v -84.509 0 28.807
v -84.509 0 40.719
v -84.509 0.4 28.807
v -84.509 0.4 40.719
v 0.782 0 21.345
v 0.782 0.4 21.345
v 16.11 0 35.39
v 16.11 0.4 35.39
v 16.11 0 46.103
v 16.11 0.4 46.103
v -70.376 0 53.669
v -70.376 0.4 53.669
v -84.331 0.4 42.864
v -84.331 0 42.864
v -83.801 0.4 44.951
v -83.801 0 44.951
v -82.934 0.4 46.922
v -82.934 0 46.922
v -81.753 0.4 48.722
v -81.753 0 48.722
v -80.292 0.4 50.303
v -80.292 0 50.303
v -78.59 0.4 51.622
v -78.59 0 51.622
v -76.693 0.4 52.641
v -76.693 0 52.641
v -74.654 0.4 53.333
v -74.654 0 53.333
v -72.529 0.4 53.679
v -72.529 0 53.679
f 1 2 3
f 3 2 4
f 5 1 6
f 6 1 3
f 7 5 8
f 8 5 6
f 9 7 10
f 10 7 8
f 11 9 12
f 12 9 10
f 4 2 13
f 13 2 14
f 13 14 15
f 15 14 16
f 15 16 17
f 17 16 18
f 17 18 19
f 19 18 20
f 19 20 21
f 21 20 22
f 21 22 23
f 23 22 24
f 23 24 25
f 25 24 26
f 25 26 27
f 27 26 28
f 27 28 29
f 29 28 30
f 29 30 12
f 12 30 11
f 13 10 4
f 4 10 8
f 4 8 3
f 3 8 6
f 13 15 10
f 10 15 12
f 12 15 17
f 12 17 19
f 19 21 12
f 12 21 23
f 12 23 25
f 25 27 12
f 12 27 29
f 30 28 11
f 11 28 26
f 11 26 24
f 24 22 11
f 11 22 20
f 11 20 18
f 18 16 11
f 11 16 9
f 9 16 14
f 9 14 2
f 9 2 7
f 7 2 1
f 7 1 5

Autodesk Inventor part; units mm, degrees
ref_plane "YZ Plane" through (0, 0, 0) normal (1, 0, 0) x (0, 1, 0)
ref_plane "XZ Plane" through (0, 0, 0) normal (0, 1, 0) x (-1, 0, 0)
ref_plane "XY Plane" through (0, 0, 0) normal (0, 0, 1) x (1, 0, 0)
sketch "Sketch1" plane through (0, 0, 0) normal (0, 1, 0) x (-1, 0, 0)
  line L0 (-0.7821, 21.3445) -> (84.5093, 28.8066)
  line L1 (84.5093, 28.8066) -> (84.5093, 40.7189)
  arc A0 (84.5093, 40.7189) -> (70.3763, 53.6694) centre (71.5093, 40.7189) ccw
  line L2 (70.3763, 53.6694) -> (-16.1101, 46.1028)
  line L3 (-16.1101, 46.1028) -> (-16.1101, 35.3901)
  line L4 (-16.1101, 35.3901) -> (-0.7821, 21.3445)
  line L5 (82.5093, 40.7189) -> (82.5093, 35.2209)
  arc A1 (77.9451, 30.2399) -> (82.5093, 35.2209) centre (77.5093, 35.2209) ccw
  line L6 (77.9451, 30.2399) -> (2.112, 23.6054)
  arc A2 (-1.7018, 24.8999) -> (2.112, 23.6054) centre (1.6762, 28.5863) ccw
  line L7 (-1.7018, 24.8999) -> (-12.4881, 34.7838)
  arc A3 (-14.1101, 38.4702) -> (-12.4881, 34.7838) centre (-9.1101, 38.4702) ccw
  line L8 (-14.1101, 38.4702) -> (-14.1101, 39.6885)
  arc A4 (-9.5459, 44.6695) -> (-14.1101, 39.6885) centre (-9.1101, 39.6885) ccw
  line L9 (-9.5459, 44.6695) -> (70.5506, 51.677)
  arc A5 (82.5093, 40.7189) -> (70.5506, 51.677) centre (71.5093, 40.7189) ccw
  line L10 (-15.9101, 45.9195) -> (70.3937, 53.4702)
  arc A6 (84.3093, 40.7189) -> (70.3937, 53.4702) centre (71.5093, 40.7189) ccw
  line L11 (84.3093, 40.7189) -> (84.3093, 28.9898)
  line L12 (84.3093, 28.9898) -> (-0.7118, 21.5514)
  line L13 (-0.7118, 21.5514) -> (-15.9101, 35.4781)
  line L14 (-15.9101, 35.4781) -> (-15.9101, 45.9195)
  point P0 (0, 0)
  dimension "d0" = 0.2
extrude "Extrusion1" add sketch "Sketch1" along normal blind 0.4 contours L4 L3 L2 A0 L1 L0 | L5 A1 L6 A2 L7 A3 L8 A4 L9 A5 | L10 A6 L11 L12 L13 L14
properties part number "e"
